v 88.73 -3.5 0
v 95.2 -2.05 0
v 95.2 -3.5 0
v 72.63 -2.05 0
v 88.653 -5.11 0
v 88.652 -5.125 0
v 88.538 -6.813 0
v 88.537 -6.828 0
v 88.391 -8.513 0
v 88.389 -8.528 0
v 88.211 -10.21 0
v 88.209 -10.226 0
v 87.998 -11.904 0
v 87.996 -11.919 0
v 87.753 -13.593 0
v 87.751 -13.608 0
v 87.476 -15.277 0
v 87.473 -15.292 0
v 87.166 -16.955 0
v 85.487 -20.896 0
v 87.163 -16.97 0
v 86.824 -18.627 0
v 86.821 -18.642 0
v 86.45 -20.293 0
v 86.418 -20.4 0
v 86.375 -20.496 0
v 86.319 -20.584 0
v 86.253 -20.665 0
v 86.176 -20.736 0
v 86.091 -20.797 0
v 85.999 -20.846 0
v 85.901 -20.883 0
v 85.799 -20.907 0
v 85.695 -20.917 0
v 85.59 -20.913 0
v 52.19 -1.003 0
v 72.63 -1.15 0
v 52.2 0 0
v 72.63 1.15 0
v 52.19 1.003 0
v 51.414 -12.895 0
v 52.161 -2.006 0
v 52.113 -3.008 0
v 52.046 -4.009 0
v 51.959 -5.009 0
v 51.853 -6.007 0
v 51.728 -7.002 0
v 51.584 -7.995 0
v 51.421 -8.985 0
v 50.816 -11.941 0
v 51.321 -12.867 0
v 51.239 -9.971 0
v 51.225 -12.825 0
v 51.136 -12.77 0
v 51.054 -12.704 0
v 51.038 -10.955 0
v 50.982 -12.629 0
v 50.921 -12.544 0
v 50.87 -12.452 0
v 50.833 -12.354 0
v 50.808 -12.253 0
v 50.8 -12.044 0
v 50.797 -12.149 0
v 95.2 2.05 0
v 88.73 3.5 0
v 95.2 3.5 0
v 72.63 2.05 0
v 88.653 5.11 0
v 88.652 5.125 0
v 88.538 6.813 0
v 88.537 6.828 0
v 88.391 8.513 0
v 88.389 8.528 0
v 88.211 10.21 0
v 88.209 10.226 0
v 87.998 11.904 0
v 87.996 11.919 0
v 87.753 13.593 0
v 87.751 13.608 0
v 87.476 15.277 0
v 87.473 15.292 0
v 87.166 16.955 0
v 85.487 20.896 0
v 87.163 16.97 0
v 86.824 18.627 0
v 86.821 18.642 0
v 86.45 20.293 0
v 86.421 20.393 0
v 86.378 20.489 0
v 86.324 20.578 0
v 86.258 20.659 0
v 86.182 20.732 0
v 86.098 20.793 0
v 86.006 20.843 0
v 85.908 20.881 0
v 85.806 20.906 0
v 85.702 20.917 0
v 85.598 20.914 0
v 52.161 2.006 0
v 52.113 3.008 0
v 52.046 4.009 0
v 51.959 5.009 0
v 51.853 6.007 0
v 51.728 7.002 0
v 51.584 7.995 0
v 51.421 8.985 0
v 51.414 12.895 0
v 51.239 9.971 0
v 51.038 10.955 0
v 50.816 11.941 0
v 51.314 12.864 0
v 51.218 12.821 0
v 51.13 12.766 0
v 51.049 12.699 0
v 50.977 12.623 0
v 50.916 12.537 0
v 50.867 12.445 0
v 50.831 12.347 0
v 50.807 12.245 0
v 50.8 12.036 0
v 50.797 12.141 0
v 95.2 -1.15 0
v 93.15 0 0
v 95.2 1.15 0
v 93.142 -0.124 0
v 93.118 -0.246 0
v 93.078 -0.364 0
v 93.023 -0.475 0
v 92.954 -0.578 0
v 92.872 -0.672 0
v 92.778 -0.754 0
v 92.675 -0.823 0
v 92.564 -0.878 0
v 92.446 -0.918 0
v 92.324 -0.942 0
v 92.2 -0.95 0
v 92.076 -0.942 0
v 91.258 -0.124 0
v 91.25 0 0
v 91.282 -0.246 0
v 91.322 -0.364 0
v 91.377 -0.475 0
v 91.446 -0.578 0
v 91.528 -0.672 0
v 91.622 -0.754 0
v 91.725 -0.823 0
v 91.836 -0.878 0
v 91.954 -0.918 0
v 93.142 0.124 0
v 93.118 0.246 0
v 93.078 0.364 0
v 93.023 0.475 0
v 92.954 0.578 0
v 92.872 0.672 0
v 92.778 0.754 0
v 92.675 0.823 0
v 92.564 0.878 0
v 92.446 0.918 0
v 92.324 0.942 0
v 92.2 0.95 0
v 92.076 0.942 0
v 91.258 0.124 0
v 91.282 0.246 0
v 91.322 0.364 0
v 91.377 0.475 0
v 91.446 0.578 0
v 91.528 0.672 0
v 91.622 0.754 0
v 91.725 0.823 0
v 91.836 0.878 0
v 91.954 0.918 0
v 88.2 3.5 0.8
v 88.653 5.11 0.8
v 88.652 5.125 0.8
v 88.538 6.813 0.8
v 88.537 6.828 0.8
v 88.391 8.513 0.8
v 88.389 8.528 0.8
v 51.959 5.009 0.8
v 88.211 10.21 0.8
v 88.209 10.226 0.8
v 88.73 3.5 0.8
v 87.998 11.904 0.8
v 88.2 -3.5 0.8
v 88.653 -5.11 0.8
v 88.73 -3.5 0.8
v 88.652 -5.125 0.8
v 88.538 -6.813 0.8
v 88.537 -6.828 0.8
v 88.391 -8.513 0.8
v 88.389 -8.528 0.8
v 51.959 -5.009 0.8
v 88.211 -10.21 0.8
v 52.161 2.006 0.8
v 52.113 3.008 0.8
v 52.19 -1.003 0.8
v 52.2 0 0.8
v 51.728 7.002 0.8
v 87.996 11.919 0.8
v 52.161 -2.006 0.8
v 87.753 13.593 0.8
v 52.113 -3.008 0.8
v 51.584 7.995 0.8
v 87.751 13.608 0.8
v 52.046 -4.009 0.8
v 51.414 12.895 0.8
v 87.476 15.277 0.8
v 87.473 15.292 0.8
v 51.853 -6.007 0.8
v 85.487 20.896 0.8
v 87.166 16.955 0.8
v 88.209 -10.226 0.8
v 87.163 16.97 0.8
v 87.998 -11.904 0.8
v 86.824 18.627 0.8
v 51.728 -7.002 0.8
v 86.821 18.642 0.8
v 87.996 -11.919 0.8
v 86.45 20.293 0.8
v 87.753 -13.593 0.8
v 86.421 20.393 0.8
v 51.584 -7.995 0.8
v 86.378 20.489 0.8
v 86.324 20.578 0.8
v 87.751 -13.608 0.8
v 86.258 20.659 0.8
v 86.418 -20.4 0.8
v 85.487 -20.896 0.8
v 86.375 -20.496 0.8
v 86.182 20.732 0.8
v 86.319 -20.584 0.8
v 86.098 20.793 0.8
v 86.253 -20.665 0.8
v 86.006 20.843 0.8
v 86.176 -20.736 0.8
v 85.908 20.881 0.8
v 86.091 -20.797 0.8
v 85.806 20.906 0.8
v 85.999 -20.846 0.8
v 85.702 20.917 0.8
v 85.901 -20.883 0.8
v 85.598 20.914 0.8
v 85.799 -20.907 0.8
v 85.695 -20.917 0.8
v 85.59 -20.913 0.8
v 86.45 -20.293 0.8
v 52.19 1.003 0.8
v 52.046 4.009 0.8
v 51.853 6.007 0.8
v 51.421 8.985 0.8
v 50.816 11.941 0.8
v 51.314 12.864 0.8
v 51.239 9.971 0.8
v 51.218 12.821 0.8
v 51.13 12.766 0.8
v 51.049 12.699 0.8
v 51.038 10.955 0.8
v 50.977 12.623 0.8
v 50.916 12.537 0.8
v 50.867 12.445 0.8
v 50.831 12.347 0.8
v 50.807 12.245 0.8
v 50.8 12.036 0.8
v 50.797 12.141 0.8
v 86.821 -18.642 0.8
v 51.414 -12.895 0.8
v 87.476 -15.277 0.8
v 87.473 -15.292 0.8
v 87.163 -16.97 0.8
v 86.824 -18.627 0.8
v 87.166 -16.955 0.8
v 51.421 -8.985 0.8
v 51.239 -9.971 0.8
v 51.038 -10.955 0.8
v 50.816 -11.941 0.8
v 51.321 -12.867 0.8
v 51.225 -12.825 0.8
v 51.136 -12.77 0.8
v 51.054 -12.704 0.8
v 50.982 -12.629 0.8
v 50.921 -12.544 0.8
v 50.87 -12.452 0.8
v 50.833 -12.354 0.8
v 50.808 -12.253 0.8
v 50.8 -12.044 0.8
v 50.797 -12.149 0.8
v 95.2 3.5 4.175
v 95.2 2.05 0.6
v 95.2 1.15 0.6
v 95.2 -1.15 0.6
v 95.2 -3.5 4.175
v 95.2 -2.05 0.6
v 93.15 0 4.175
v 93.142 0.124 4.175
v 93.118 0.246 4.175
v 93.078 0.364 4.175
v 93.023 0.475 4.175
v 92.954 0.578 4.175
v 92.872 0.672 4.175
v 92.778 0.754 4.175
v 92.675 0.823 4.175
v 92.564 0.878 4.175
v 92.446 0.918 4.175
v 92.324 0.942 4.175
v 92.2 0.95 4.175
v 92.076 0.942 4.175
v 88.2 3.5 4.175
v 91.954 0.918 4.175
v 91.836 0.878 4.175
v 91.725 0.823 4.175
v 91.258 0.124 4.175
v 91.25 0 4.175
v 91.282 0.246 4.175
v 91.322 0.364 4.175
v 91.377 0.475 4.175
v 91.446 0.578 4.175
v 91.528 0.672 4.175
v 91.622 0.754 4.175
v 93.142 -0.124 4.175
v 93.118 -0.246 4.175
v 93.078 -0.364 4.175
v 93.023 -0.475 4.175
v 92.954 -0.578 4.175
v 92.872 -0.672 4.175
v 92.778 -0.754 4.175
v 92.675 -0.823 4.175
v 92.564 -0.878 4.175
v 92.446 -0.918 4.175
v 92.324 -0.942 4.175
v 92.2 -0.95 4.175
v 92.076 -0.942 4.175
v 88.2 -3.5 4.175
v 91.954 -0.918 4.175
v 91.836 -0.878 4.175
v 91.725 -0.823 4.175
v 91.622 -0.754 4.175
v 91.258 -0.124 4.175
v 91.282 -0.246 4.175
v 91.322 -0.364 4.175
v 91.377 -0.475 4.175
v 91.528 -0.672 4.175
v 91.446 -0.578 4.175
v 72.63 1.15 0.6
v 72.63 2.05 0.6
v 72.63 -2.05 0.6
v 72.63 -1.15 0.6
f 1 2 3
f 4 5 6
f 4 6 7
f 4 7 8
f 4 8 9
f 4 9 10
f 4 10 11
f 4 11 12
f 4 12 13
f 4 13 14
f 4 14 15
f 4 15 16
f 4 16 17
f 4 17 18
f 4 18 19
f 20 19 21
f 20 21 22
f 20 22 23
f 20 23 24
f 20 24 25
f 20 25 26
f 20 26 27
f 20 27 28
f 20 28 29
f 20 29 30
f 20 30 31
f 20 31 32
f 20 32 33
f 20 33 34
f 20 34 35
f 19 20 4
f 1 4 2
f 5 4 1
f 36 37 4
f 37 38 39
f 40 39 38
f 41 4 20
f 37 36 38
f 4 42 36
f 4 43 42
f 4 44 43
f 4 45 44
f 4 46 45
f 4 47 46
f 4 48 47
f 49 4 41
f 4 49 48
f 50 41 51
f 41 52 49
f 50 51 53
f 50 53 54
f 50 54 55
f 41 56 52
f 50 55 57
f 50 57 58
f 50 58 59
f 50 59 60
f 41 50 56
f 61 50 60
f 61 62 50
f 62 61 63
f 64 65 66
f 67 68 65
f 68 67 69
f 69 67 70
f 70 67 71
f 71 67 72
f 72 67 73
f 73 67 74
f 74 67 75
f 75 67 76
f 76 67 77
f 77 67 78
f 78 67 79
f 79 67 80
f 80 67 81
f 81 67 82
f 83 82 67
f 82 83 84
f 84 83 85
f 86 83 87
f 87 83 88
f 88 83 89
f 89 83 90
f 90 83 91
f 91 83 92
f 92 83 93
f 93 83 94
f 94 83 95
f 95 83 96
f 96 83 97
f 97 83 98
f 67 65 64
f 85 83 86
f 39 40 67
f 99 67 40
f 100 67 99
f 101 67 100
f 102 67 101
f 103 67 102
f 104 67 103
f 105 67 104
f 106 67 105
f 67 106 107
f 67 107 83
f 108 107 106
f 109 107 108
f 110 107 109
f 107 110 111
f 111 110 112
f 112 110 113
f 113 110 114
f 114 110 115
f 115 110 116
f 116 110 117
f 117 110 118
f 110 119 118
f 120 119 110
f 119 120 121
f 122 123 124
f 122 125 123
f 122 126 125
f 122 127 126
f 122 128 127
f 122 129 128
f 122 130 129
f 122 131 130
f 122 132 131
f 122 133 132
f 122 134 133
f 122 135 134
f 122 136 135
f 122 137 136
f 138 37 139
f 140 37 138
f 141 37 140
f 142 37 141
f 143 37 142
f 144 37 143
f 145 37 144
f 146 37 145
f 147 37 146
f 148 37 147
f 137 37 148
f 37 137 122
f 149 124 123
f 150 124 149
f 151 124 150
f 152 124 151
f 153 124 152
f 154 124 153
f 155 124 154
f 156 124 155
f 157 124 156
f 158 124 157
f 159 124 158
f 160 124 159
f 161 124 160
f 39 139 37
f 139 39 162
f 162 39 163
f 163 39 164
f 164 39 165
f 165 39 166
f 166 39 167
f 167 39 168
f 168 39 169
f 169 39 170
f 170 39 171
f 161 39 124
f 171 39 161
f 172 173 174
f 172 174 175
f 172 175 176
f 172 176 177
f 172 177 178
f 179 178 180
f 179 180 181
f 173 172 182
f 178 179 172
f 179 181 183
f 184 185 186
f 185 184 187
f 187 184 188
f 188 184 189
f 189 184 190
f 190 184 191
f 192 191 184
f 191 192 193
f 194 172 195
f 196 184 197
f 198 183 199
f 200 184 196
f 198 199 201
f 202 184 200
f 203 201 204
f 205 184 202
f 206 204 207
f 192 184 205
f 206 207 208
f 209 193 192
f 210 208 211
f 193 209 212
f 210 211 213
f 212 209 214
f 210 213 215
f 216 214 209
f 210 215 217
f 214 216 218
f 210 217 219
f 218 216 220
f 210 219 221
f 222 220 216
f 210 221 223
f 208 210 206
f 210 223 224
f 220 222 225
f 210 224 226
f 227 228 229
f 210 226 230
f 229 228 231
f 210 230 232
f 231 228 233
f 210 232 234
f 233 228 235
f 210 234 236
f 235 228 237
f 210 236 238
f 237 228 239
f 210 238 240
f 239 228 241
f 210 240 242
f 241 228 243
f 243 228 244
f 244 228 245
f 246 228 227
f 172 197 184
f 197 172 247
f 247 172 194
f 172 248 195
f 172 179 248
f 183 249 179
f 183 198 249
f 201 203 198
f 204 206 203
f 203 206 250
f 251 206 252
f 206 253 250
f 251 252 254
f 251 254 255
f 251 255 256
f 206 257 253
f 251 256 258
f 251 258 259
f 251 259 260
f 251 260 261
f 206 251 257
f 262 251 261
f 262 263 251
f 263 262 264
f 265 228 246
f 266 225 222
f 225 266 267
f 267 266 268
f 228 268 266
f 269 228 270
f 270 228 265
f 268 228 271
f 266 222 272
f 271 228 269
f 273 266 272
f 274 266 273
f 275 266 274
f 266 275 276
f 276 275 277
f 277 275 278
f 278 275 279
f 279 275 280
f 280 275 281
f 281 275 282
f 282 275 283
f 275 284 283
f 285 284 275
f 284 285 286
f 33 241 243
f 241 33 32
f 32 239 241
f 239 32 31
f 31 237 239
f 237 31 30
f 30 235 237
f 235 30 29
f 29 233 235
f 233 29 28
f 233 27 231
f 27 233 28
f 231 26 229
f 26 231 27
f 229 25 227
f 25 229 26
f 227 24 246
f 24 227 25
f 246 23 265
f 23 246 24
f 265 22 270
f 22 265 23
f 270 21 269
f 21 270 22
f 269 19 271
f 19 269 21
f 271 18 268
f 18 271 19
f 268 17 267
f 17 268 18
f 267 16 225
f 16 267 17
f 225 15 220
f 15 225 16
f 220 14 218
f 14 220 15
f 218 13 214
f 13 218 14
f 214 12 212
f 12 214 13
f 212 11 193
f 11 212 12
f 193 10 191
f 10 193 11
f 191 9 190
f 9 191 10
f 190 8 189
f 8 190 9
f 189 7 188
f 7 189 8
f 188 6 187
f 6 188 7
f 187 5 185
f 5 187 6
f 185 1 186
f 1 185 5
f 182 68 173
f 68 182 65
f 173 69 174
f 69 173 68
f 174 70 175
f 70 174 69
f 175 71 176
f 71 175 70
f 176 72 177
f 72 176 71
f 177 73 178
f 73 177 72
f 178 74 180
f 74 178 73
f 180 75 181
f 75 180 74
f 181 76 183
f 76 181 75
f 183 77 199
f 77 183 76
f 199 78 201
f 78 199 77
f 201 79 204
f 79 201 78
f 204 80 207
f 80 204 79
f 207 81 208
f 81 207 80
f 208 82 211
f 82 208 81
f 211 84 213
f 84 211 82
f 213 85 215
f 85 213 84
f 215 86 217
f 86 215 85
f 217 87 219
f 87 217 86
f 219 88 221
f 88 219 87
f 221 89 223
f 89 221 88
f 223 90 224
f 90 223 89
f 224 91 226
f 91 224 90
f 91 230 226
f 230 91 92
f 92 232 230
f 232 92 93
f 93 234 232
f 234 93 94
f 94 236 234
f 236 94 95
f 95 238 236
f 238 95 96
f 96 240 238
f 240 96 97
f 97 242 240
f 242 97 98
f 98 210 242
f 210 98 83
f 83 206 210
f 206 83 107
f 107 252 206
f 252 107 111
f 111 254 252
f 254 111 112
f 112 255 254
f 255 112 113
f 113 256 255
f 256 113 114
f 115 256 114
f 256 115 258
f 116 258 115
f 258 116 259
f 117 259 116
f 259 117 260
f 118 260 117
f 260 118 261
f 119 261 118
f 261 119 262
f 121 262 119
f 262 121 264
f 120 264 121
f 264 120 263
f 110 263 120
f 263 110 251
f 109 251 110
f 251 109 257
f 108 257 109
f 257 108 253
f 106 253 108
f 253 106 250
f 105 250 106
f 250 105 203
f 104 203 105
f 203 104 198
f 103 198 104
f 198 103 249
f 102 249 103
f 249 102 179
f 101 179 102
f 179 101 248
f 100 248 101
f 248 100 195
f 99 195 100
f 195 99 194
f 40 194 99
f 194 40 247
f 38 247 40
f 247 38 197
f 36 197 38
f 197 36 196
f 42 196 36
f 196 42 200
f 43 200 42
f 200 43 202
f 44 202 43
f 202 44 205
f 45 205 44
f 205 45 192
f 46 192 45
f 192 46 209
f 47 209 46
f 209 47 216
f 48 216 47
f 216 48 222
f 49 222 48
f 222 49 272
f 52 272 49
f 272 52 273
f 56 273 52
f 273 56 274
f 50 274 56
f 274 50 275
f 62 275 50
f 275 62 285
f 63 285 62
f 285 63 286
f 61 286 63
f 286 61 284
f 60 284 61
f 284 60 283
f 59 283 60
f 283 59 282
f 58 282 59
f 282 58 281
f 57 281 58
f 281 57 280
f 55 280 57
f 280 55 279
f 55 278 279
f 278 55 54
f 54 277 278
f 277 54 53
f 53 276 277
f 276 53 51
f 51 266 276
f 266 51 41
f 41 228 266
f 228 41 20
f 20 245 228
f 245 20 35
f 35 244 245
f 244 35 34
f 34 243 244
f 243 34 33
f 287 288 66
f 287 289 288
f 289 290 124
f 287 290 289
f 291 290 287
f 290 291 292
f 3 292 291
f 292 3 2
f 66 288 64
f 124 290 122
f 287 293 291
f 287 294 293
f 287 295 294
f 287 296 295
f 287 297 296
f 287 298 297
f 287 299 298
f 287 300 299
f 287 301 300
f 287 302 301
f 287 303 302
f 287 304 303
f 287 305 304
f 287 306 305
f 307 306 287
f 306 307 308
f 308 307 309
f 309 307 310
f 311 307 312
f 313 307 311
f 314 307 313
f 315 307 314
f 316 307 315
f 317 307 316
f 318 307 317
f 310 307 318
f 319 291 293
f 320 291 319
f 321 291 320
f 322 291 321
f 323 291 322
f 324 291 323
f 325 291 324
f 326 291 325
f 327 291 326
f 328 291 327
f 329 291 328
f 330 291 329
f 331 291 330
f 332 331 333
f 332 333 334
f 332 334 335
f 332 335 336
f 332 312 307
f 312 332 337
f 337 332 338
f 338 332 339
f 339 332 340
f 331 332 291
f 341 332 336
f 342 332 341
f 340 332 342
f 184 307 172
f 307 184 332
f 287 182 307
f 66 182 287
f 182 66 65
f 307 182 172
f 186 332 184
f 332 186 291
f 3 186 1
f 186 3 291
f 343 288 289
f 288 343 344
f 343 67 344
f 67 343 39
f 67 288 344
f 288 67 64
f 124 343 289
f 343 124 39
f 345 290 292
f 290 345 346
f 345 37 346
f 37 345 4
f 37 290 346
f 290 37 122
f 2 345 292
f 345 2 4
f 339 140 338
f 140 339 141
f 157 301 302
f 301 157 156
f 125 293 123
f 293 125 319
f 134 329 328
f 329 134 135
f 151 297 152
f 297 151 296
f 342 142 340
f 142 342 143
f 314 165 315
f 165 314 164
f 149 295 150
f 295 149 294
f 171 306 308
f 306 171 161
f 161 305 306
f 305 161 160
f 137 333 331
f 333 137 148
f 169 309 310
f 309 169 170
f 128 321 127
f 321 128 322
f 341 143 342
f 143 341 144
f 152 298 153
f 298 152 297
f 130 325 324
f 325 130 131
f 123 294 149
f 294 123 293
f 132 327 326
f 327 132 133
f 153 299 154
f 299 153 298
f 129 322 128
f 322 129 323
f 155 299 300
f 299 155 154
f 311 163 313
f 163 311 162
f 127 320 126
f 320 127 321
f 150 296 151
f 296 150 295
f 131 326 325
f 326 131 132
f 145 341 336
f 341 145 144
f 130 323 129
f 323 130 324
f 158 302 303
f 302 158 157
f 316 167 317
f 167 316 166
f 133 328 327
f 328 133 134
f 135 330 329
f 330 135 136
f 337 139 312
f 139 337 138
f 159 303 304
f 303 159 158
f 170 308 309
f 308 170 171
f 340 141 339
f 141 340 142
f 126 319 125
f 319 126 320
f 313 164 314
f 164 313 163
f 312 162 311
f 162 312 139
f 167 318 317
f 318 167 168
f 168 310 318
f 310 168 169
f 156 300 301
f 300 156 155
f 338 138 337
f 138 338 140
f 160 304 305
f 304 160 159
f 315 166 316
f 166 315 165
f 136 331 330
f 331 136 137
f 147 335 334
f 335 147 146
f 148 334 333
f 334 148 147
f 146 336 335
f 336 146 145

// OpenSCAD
// file: parameters.scad
// =============================================================================
// Gen-BX — nightly 2026-10-11 (physics_scorer, honest magpylib watts)
// Gap reduction paid for by a bigger ring: the Gen-BU 8p/12c layout with the copper cut from 8.1 to 6.75 mm (magnet face to magnet face 10.70 → 9.35 mm, so Bz at the copper rises) and the lost window area won back radially, with the poles moved out to R71 and the bobbins stretched to r53–88. The scans show the thin-copper optimum only appears on the bigger ring (on R66 it gains far less), and R71 / Ø194 stator is the largest machine that still packs on one 410 mm plate.
// Clocking 0 deg (magnets N facing S) + D-flat keyed bore + index notch + flip-symmetric hole map.
// Windable 2-piece bobbin; turns = physics_scorer turns_fit; copper only between flanges.
// Steel back-iron: 2× Ø168 × 4.76 mm (3/16") mild-steel discs (steel_backiron_disc.dxf); magnets sit ON the steel
// (through-pockets) -> score with --back-iron. Night 2026-10-11.
// =============================================================================
topology            = "dual_rotor";

// --- Wire / winding (physics_scorer winding-fit) -------------------------------
wire_awg            = 26;
wire_od             = 0.45;     // insulated OD mm (bare 0.405)
fill_realistic      = 0.65;     // insulated-wire area / window (DENSE layered wind with a jig; scorer cap 0.65)
turns               = 410;       // = physics_scorer turns_fit (do NOT raise)
coil_former_type    = "bobbin";
coil_core_inset     = 14.87;     // radial copper build: hub = copper boundary inset by this
wind_build_axial    = 0.0;      // nothing proud of the flanges
wind_build_radial   = 0.0;

// --- Bobbin (base + lid) ---------------------------------------------------------
coil_id_r           = 53.00;    // copper boundary sector
coil_od_r           = 88.00;
span_deg            = 26.43;    // = pitch - 2*asin((wall+0.85)/coil_id_r) -> >=1.2 mm stator web
former_web          = 6.75;     // copper height between flanges (TALL copper: steel keeps Bz up)
flange_t            = 0.80;     // >= 0.8 mm FDM wall rule (tall winds push on the flanges)
wall                = 0.80;     // flange lip beyond copper
former_bare_h       = former_web + 2 * flange_t;
coil_envelope_h     = former_bare_h + 2 * wind_build_axial;
tab_w               = 7.0;
tab_len             = 7.0;
tab_h               = former_bare_h / 2;
pin_d               = 1.9;      // 1.75 mm filament locating pin
coil_mount_r        = coil_od_r + 0.2 + 4.0;
lead_y              = 1.6;
lead_slot_w         = 0.9;
lead_groove_d       = 0.6;

// --- Gap -------------------------------------------------------------------------
run_clear           = 0.50;     // rotor face -> flange
gap_spacer_h        = run_clear + wind_build_axial;
m2m                 = coil_envelope_h + 2 * run_clear;   // rotor face to rotor face (= gap_sleeve length)

// --- Stator ----------------------------------------------------------------------
coil_stations       = 12;
bay_clear           = 0.25;
stator_thick        = former_bare_h;                        // bobbins flush both faces
stator_od           = 194;
shaft_clear_stator  = 14.0;     // stator is static; gap sleeve OD 12 spins inside

// --- Rotor(s) --------------------------------------------------------------------
magnet_Br           = 1.43;     // N52
magnet_d_large      = 20.0;
magnet_h_large      = 5.0;      // one O20x5 per pocket
magnet_h_small      = 5.0;      // unused: no O5 pockets in this kit
halbach_magnetisation = "none";  // NO O5 assist magnets in this kit (scan: they lower the 4-pole score)
rotor_b_same_axis   = true;     // same-index magnets share one axis: N faces S across the gap
large_pocket_d      = 20.3;
small_pocket_d      = 5.3;
pocket_h            = 5.00;     // THROUGH the carrier: magnet back face sits on the steel disc (FLUSH seat: carrier = magnet height, magnet face level with the rotor face)
large_n             = 8;
R_large             = 71.0;
small_r_list        = [];       // no O5 pockets
carrier_od          = 168.0;
carrier_thick       = pocket_h;
hub_h               = 12.0;     // > steel_t + insert: radial set-screw clears the steel
hub_od              = 24.0;     // slim hub so the M4 brace rods fit at R~18 inside the coil ring
hub_insert_d        = 4.0;      // M3 heat-set insert, radial, bears on the D-flat
rotor_b_offset_deg  = 0.0;      // CLOCKING: magnets directly opposite
shaft_key           = "dflat";
dflat_depth         = 0.5;      // 8 mm shaft with 0.5 mm flat (7.5 across flat)
index_notch_d       = 3.0;

// --- Steel back-iron (buyable laser-cut) -------------------------------------------
steel_t             = 4.76;      // mild steel thickness (image method ignores it; sized from steel_flux.py so the return path stays well below saturation)
steel_center_hole   = 26.0;     // slips over the rotor hub (OD 24)
steel_od            = carrier_od;   // steel disc OD = rotor carrier OD

// --- Modular MAX interface ----------------------------------------------------------
shaft_bore          = 8.35;
dflat_x             = 4.0 - dflat_depth + (shaft_bore - 8.0) / 2;
bearing_d           = 21.85;
bearing_h           = 7.2;
m3_clear            = 3.5;
bolt_r_inner        = 30.0;     // M3 steel-disc clamp bolts (inside the magnet ring)
bolt_n_inner        = 4;
bolt_inner_angles   = [0, 90, 180, 270];
bolt_r_outer        = 44.0;     // second M3 steel-disc clamp ring
bolt_outer_angles   = [67.5, 112.5, 247.5, 292.5];
flange_bolt_r       = 91.5;     // frame rods: OUTSIDE the rotor OD (rotors spin inside them)
flange_bolt_n       = 4;
flange_bolt_offset  = 45.00;    // between coil stations -> never cuts a lead groove/tab
brace_r             = 18.0;
brace_d             = 4.3;      // temporary M4 jack rods (assembly only)
brace_n             = 4;
brace_angles        = [45, 135, 225, 315];          // flip-symmetric

spacer_pad_od       = 14.0;
spacer_pad_id       = m3_clear;
endbell_od          = 193.0;
endbell_thick       = 8.0;
endbell_shaft_clear = 10.0;
collar_h            = 10.0;
standoff_od         = 9.0;
frame_standoff_h    = run_clear + carrier_thick + hub_h + collar_h + 2.0;
sleeve_od           = 12.0;
plate_max_mm        = 410;

$fn = 64;
// main file
// Gen-BX — bobbin LID (top flange + locating tab). Print x12, flange face DOWN on the bed.
// CA-glue onto the hub top BEFORE winding. Tab = lap joint into the stator tab pocket; 1.75 mm filament
// pin through pin hole + stator ledge, trim flush. Lead slots carry both leads flush.
include <parameters.scad>;
$fn = 48;
module sector_2d(r_in, r_out, ang) {
    polygon([
        for (a = [-ang/2 : ang/24 : ang/2]) [r_in*cos(a), r_in*sin(a)],
        for (a = [ang/2 : -ang/24 : -ang/2]) [r_out*cos(a), r_out*sin(a)]
    ]);
}
module footprint_2d() { offset(r=wall) sector_2d(coil_id_r, coil_od_r, span_deg); }
module hub_2d()       { offset(delta=-coil_core_inset) sector_2d(coil_id_r, coil_od_r, span_deg); }

difference() {
    union() {
        linear_extrude(flange_t) footprint_2d();
        translate([coil_od_r + 0.2, -tab_w/2, 0]) cube([tab_len, tab_w, tab_h]);
    }
    translate([coil_mount_r, 0, -0.1]) cylinder(d=pin_d, h=tab_h + 1);
    for (y = [lead_y, -lead_y])
        translate([coil_od_r - coil_core_inset - 0.5, y - lead_slot_w/2, -0.1])
            cube([coil_core_inset + tab_len + 2, lead_slot_w, lead_groove_d + 0.1]);
}
